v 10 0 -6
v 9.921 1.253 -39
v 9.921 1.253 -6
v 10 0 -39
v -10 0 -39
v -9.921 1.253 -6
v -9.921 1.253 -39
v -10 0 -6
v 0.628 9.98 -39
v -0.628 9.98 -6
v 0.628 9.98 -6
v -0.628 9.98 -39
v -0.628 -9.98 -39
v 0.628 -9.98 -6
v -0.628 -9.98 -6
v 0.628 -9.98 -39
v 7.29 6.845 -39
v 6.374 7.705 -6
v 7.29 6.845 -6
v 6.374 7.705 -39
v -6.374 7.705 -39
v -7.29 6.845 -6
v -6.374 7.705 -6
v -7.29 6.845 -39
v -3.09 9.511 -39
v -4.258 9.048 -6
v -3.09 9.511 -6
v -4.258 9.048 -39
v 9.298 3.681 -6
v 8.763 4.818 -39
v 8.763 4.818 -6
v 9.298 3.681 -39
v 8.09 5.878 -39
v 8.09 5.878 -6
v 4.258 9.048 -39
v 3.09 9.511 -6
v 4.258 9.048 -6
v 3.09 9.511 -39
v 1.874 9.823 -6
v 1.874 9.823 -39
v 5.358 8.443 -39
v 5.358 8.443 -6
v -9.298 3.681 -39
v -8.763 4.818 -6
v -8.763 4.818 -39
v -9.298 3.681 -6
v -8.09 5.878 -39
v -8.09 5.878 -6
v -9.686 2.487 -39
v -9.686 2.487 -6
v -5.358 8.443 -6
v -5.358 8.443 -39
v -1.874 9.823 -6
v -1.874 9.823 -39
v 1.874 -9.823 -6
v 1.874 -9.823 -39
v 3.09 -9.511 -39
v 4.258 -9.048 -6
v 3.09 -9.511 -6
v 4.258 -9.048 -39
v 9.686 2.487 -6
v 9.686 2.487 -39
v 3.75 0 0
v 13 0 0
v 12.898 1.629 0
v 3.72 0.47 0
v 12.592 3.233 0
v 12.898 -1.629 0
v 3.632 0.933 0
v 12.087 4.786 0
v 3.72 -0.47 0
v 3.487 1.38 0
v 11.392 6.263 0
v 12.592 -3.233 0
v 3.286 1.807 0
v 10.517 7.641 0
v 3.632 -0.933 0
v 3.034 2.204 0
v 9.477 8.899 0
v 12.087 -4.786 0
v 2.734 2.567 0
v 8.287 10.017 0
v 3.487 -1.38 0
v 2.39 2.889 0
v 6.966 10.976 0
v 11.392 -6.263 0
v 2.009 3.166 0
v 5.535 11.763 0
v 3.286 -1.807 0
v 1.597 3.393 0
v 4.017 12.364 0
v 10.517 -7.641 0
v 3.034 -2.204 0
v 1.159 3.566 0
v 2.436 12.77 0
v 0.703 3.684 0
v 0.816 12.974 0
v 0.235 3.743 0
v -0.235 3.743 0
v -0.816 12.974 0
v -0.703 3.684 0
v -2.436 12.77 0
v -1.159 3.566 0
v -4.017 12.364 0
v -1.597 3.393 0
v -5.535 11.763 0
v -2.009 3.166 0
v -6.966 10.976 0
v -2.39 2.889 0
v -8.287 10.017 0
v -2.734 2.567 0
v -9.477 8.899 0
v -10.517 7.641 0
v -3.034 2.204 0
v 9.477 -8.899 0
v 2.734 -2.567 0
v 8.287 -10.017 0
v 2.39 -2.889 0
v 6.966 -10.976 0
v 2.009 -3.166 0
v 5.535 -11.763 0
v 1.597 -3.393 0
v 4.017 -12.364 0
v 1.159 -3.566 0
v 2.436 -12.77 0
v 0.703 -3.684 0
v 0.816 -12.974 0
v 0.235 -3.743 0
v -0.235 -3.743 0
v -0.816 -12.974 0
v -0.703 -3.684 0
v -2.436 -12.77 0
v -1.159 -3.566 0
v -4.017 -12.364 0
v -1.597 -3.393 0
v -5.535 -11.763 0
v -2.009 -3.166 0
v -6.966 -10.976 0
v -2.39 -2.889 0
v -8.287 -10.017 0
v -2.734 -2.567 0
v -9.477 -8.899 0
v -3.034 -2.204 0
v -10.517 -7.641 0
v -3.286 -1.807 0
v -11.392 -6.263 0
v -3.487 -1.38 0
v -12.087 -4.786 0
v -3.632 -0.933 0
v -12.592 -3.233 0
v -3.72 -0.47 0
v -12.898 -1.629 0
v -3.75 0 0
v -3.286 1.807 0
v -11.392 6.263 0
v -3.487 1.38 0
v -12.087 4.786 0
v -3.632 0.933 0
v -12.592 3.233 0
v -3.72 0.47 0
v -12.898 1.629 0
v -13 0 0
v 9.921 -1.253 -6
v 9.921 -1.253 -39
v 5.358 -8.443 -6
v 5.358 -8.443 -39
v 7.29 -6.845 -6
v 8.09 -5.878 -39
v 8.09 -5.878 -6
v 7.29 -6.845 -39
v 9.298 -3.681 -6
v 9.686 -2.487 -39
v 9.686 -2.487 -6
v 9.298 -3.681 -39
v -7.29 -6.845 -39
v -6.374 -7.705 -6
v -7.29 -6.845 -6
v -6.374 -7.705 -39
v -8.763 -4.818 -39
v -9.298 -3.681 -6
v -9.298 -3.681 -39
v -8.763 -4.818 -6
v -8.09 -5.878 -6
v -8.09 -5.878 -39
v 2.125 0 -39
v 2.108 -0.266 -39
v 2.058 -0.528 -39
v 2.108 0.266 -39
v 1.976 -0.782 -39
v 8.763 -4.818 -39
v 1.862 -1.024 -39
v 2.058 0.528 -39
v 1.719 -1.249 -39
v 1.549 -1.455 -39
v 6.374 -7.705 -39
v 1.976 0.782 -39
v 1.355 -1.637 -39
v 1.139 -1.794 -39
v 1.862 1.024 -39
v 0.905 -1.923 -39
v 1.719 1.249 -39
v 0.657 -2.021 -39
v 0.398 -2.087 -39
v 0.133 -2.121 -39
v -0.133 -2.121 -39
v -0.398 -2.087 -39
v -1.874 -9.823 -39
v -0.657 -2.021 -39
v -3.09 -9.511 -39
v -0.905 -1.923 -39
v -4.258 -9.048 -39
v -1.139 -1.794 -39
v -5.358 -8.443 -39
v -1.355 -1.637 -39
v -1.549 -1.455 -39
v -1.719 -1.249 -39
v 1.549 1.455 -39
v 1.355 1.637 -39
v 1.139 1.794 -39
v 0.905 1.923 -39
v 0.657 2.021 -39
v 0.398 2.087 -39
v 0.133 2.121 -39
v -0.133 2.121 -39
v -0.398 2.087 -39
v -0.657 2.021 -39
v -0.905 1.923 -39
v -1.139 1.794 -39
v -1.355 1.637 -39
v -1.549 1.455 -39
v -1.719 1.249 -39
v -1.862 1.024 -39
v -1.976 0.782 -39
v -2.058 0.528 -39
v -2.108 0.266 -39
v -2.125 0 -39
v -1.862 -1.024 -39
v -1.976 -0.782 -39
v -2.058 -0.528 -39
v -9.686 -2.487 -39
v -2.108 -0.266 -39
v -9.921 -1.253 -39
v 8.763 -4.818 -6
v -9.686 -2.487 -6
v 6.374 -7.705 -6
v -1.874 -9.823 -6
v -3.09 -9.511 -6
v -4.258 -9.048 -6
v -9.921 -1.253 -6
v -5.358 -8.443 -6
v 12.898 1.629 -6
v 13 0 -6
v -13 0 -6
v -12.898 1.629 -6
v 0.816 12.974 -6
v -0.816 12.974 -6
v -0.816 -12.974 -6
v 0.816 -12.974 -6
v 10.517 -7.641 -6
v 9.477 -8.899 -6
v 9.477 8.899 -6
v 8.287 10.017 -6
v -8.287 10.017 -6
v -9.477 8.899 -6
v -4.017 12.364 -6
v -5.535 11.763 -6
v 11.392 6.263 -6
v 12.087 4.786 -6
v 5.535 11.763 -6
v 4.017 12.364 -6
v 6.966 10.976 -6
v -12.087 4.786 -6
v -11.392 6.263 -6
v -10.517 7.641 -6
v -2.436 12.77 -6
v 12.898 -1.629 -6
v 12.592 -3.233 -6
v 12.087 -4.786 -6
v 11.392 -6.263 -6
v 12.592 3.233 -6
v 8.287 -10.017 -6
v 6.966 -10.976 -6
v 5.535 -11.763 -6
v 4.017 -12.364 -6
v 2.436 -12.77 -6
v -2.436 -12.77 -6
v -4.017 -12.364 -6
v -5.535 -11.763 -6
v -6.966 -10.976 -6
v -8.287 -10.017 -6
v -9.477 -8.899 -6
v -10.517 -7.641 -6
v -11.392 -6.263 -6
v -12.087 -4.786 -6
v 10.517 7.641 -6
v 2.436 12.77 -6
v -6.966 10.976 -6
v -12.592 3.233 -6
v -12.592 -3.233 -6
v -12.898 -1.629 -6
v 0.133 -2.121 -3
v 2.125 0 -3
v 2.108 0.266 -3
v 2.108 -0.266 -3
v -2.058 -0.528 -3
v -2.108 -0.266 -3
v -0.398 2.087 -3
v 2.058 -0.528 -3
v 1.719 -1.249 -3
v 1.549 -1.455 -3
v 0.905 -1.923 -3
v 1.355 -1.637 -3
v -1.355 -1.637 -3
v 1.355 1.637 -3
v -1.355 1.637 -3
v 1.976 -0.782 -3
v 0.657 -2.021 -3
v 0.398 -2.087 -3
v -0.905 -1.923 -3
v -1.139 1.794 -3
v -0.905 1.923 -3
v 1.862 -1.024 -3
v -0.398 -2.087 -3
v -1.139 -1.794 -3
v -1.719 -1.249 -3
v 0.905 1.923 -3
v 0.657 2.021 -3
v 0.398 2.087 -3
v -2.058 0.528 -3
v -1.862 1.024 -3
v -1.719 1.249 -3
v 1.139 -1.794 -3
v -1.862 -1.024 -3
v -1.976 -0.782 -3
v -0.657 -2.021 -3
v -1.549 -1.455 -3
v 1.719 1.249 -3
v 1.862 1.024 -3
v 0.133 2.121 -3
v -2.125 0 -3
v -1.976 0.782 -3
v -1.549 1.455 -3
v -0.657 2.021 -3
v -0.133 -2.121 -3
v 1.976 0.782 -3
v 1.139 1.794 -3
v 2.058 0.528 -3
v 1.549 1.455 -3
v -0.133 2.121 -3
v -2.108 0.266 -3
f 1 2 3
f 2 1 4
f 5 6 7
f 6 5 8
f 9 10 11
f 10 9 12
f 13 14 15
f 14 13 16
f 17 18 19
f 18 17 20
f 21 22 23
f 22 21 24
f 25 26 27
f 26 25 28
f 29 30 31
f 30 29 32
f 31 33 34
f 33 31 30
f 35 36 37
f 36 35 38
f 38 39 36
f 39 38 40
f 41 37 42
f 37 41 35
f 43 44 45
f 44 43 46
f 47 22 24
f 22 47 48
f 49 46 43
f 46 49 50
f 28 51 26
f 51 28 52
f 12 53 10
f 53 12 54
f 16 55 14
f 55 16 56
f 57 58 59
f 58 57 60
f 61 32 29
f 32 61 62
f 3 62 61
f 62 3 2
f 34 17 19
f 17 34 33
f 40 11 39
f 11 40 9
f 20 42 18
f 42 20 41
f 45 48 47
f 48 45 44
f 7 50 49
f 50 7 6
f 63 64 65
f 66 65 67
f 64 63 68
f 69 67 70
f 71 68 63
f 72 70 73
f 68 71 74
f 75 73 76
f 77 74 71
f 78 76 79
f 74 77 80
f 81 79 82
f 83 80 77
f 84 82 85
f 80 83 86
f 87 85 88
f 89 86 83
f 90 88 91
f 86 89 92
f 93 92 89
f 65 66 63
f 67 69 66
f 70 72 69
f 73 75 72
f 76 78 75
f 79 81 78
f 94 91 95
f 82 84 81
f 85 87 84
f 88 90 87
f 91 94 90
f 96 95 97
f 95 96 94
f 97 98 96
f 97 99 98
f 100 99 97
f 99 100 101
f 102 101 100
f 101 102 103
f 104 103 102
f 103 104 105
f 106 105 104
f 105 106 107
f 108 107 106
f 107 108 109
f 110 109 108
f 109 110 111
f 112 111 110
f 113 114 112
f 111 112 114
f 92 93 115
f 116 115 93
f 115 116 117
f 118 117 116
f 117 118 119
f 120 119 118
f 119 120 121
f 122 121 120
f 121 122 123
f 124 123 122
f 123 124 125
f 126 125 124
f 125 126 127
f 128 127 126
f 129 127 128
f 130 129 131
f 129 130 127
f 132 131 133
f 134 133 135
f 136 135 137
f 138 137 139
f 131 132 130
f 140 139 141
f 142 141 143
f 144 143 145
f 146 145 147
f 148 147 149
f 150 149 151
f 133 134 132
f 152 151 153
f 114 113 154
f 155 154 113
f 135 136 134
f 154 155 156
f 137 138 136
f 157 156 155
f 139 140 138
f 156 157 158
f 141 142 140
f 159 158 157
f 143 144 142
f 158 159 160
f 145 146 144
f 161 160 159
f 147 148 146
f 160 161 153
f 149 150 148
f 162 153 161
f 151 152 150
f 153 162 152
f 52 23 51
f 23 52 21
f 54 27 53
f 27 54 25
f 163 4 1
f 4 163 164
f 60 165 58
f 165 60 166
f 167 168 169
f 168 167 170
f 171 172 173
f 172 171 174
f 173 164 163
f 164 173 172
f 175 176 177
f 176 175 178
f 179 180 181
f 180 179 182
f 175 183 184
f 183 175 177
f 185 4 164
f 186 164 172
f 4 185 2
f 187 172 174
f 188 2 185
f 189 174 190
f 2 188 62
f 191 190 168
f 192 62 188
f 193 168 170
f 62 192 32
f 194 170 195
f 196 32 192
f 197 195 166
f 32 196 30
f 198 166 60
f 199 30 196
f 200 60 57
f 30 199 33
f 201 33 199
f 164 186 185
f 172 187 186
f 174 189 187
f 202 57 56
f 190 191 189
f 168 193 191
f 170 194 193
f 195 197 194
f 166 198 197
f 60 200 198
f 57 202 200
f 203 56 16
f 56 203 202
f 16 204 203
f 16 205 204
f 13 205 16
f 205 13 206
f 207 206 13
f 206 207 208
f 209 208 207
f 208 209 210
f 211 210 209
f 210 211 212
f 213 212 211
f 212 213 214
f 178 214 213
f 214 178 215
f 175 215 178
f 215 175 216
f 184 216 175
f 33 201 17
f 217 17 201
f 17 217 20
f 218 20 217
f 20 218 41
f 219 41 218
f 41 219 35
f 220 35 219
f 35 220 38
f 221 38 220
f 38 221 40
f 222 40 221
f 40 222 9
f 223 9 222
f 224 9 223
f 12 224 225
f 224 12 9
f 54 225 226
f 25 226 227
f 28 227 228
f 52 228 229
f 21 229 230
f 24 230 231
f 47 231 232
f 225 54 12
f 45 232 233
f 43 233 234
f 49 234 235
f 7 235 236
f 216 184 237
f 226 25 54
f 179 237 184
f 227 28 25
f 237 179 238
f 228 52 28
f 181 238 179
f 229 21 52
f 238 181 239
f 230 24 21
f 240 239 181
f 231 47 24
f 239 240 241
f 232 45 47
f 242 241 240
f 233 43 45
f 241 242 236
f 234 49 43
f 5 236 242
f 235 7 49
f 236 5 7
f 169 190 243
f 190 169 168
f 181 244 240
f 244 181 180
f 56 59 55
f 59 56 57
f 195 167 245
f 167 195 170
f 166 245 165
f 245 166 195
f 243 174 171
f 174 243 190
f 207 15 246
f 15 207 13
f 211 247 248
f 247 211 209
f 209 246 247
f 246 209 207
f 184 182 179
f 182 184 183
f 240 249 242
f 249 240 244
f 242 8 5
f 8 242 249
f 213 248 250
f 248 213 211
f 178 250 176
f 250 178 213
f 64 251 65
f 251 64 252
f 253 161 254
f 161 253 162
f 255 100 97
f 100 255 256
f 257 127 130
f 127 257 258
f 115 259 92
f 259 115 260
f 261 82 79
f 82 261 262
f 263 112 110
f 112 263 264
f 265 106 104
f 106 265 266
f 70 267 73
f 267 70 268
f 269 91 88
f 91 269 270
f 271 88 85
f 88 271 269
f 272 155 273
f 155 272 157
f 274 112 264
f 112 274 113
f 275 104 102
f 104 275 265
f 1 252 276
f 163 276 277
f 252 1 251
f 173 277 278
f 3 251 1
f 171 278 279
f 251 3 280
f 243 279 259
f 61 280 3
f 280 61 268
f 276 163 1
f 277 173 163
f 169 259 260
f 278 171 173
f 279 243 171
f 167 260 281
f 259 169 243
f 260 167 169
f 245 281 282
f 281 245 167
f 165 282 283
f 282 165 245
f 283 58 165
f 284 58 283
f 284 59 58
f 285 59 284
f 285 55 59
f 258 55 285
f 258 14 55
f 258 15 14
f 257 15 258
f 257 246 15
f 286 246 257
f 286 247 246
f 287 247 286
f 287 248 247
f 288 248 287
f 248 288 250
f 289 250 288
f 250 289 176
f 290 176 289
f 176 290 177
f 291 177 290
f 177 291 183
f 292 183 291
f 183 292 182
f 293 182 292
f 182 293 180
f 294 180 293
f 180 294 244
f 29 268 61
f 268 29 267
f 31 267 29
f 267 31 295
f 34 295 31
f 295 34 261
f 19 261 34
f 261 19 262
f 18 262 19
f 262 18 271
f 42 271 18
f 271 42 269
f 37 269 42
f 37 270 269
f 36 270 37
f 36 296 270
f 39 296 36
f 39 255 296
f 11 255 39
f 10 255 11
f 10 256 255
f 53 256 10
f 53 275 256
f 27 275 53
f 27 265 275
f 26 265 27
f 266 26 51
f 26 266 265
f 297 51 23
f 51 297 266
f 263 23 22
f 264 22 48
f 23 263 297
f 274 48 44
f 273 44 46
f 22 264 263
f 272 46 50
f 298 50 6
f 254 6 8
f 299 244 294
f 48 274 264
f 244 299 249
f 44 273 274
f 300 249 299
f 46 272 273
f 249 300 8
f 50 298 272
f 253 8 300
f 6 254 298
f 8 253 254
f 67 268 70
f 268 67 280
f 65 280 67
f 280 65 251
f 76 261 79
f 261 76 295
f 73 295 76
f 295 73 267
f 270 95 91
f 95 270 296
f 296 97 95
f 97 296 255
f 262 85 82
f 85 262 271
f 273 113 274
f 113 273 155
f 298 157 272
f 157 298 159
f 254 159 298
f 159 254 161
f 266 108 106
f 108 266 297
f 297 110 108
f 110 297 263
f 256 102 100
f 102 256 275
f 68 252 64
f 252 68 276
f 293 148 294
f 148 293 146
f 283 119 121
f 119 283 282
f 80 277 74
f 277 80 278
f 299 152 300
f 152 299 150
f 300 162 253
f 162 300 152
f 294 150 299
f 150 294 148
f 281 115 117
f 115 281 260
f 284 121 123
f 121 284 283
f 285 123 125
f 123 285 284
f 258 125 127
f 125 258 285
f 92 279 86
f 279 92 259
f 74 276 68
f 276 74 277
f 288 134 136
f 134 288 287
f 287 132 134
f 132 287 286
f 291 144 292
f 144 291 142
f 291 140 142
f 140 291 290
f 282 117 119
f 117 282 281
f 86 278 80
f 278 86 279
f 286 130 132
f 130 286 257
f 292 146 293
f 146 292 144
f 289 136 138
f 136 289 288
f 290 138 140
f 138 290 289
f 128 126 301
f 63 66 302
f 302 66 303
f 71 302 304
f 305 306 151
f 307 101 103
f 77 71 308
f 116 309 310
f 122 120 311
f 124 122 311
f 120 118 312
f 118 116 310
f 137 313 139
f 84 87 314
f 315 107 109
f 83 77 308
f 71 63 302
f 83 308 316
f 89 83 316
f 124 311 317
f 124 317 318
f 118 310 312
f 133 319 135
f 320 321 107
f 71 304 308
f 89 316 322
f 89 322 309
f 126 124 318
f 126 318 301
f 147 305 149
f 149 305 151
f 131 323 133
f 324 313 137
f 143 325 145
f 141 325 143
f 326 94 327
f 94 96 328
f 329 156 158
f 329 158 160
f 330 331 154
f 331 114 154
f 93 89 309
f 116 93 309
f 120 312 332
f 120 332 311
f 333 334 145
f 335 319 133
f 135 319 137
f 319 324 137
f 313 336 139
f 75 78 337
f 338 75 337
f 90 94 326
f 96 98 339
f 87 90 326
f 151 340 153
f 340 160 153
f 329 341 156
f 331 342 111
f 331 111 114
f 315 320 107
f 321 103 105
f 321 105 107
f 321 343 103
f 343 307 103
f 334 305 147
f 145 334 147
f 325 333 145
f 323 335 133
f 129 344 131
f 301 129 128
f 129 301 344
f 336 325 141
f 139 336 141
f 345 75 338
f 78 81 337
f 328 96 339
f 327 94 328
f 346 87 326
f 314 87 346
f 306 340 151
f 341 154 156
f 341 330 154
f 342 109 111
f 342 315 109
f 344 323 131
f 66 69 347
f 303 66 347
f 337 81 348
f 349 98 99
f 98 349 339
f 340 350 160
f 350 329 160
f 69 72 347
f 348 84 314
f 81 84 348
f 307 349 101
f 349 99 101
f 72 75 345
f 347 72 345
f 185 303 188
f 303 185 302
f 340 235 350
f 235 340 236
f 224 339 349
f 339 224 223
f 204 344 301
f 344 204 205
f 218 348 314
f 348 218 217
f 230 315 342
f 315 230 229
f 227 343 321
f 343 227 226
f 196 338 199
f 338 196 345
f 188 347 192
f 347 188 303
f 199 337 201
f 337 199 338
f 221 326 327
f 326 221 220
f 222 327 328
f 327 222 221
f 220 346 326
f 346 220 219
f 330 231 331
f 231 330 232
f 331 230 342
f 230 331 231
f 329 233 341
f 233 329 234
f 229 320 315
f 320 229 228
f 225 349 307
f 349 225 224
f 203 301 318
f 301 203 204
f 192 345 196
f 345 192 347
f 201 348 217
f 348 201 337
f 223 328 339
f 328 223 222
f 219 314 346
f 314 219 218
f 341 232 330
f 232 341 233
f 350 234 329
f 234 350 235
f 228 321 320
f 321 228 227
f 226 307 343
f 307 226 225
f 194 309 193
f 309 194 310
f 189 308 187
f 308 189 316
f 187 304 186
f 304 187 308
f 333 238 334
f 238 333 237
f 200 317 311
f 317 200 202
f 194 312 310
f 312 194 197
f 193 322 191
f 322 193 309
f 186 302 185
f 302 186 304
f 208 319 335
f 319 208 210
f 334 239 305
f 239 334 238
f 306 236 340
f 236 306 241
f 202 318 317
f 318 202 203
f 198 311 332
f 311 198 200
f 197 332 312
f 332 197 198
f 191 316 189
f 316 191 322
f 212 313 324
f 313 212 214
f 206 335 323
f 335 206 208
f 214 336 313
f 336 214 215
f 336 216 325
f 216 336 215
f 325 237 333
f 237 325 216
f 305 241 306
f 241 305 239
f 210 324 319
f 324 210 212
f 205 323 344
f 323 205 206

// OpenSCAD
$fn = 50;


difference() {
	union() {
		translate(v = [0, 0, -39.0000000000]) {
			cylinder(h = 39, r = 10.0000000000);
		}
		translate(v = [0, 0, -6.0000000000]) {
			cylinder(h = 6, r = 13.0000000000);
		}
	}
	union() {
		translate(v = [0, 0, 0]) {
			rotate(a = [0, 0, 0]) {
				difference() {
					union() {
						#translate(v = [0, 0, -39.0000000000]) {
							cylinder(h = 39, r = 2.0000000000);
						}
						#translate(v = [0, 0, -3]) {
							cylinder(h = 3, r1 = 2.1250000000, r2 = 3.7500000000);
						}
						#translate(v = [0, 0, -39.0000000000]) {
							cylinder(h = 39, r = 2.1250000000);
						}
						#translate(v = [0, 0, -39.0000000000]) {
							cylinder(h = 39, r = 2.0000000000);
						}
					}
					union();
				}
			}
		}
	}
}
